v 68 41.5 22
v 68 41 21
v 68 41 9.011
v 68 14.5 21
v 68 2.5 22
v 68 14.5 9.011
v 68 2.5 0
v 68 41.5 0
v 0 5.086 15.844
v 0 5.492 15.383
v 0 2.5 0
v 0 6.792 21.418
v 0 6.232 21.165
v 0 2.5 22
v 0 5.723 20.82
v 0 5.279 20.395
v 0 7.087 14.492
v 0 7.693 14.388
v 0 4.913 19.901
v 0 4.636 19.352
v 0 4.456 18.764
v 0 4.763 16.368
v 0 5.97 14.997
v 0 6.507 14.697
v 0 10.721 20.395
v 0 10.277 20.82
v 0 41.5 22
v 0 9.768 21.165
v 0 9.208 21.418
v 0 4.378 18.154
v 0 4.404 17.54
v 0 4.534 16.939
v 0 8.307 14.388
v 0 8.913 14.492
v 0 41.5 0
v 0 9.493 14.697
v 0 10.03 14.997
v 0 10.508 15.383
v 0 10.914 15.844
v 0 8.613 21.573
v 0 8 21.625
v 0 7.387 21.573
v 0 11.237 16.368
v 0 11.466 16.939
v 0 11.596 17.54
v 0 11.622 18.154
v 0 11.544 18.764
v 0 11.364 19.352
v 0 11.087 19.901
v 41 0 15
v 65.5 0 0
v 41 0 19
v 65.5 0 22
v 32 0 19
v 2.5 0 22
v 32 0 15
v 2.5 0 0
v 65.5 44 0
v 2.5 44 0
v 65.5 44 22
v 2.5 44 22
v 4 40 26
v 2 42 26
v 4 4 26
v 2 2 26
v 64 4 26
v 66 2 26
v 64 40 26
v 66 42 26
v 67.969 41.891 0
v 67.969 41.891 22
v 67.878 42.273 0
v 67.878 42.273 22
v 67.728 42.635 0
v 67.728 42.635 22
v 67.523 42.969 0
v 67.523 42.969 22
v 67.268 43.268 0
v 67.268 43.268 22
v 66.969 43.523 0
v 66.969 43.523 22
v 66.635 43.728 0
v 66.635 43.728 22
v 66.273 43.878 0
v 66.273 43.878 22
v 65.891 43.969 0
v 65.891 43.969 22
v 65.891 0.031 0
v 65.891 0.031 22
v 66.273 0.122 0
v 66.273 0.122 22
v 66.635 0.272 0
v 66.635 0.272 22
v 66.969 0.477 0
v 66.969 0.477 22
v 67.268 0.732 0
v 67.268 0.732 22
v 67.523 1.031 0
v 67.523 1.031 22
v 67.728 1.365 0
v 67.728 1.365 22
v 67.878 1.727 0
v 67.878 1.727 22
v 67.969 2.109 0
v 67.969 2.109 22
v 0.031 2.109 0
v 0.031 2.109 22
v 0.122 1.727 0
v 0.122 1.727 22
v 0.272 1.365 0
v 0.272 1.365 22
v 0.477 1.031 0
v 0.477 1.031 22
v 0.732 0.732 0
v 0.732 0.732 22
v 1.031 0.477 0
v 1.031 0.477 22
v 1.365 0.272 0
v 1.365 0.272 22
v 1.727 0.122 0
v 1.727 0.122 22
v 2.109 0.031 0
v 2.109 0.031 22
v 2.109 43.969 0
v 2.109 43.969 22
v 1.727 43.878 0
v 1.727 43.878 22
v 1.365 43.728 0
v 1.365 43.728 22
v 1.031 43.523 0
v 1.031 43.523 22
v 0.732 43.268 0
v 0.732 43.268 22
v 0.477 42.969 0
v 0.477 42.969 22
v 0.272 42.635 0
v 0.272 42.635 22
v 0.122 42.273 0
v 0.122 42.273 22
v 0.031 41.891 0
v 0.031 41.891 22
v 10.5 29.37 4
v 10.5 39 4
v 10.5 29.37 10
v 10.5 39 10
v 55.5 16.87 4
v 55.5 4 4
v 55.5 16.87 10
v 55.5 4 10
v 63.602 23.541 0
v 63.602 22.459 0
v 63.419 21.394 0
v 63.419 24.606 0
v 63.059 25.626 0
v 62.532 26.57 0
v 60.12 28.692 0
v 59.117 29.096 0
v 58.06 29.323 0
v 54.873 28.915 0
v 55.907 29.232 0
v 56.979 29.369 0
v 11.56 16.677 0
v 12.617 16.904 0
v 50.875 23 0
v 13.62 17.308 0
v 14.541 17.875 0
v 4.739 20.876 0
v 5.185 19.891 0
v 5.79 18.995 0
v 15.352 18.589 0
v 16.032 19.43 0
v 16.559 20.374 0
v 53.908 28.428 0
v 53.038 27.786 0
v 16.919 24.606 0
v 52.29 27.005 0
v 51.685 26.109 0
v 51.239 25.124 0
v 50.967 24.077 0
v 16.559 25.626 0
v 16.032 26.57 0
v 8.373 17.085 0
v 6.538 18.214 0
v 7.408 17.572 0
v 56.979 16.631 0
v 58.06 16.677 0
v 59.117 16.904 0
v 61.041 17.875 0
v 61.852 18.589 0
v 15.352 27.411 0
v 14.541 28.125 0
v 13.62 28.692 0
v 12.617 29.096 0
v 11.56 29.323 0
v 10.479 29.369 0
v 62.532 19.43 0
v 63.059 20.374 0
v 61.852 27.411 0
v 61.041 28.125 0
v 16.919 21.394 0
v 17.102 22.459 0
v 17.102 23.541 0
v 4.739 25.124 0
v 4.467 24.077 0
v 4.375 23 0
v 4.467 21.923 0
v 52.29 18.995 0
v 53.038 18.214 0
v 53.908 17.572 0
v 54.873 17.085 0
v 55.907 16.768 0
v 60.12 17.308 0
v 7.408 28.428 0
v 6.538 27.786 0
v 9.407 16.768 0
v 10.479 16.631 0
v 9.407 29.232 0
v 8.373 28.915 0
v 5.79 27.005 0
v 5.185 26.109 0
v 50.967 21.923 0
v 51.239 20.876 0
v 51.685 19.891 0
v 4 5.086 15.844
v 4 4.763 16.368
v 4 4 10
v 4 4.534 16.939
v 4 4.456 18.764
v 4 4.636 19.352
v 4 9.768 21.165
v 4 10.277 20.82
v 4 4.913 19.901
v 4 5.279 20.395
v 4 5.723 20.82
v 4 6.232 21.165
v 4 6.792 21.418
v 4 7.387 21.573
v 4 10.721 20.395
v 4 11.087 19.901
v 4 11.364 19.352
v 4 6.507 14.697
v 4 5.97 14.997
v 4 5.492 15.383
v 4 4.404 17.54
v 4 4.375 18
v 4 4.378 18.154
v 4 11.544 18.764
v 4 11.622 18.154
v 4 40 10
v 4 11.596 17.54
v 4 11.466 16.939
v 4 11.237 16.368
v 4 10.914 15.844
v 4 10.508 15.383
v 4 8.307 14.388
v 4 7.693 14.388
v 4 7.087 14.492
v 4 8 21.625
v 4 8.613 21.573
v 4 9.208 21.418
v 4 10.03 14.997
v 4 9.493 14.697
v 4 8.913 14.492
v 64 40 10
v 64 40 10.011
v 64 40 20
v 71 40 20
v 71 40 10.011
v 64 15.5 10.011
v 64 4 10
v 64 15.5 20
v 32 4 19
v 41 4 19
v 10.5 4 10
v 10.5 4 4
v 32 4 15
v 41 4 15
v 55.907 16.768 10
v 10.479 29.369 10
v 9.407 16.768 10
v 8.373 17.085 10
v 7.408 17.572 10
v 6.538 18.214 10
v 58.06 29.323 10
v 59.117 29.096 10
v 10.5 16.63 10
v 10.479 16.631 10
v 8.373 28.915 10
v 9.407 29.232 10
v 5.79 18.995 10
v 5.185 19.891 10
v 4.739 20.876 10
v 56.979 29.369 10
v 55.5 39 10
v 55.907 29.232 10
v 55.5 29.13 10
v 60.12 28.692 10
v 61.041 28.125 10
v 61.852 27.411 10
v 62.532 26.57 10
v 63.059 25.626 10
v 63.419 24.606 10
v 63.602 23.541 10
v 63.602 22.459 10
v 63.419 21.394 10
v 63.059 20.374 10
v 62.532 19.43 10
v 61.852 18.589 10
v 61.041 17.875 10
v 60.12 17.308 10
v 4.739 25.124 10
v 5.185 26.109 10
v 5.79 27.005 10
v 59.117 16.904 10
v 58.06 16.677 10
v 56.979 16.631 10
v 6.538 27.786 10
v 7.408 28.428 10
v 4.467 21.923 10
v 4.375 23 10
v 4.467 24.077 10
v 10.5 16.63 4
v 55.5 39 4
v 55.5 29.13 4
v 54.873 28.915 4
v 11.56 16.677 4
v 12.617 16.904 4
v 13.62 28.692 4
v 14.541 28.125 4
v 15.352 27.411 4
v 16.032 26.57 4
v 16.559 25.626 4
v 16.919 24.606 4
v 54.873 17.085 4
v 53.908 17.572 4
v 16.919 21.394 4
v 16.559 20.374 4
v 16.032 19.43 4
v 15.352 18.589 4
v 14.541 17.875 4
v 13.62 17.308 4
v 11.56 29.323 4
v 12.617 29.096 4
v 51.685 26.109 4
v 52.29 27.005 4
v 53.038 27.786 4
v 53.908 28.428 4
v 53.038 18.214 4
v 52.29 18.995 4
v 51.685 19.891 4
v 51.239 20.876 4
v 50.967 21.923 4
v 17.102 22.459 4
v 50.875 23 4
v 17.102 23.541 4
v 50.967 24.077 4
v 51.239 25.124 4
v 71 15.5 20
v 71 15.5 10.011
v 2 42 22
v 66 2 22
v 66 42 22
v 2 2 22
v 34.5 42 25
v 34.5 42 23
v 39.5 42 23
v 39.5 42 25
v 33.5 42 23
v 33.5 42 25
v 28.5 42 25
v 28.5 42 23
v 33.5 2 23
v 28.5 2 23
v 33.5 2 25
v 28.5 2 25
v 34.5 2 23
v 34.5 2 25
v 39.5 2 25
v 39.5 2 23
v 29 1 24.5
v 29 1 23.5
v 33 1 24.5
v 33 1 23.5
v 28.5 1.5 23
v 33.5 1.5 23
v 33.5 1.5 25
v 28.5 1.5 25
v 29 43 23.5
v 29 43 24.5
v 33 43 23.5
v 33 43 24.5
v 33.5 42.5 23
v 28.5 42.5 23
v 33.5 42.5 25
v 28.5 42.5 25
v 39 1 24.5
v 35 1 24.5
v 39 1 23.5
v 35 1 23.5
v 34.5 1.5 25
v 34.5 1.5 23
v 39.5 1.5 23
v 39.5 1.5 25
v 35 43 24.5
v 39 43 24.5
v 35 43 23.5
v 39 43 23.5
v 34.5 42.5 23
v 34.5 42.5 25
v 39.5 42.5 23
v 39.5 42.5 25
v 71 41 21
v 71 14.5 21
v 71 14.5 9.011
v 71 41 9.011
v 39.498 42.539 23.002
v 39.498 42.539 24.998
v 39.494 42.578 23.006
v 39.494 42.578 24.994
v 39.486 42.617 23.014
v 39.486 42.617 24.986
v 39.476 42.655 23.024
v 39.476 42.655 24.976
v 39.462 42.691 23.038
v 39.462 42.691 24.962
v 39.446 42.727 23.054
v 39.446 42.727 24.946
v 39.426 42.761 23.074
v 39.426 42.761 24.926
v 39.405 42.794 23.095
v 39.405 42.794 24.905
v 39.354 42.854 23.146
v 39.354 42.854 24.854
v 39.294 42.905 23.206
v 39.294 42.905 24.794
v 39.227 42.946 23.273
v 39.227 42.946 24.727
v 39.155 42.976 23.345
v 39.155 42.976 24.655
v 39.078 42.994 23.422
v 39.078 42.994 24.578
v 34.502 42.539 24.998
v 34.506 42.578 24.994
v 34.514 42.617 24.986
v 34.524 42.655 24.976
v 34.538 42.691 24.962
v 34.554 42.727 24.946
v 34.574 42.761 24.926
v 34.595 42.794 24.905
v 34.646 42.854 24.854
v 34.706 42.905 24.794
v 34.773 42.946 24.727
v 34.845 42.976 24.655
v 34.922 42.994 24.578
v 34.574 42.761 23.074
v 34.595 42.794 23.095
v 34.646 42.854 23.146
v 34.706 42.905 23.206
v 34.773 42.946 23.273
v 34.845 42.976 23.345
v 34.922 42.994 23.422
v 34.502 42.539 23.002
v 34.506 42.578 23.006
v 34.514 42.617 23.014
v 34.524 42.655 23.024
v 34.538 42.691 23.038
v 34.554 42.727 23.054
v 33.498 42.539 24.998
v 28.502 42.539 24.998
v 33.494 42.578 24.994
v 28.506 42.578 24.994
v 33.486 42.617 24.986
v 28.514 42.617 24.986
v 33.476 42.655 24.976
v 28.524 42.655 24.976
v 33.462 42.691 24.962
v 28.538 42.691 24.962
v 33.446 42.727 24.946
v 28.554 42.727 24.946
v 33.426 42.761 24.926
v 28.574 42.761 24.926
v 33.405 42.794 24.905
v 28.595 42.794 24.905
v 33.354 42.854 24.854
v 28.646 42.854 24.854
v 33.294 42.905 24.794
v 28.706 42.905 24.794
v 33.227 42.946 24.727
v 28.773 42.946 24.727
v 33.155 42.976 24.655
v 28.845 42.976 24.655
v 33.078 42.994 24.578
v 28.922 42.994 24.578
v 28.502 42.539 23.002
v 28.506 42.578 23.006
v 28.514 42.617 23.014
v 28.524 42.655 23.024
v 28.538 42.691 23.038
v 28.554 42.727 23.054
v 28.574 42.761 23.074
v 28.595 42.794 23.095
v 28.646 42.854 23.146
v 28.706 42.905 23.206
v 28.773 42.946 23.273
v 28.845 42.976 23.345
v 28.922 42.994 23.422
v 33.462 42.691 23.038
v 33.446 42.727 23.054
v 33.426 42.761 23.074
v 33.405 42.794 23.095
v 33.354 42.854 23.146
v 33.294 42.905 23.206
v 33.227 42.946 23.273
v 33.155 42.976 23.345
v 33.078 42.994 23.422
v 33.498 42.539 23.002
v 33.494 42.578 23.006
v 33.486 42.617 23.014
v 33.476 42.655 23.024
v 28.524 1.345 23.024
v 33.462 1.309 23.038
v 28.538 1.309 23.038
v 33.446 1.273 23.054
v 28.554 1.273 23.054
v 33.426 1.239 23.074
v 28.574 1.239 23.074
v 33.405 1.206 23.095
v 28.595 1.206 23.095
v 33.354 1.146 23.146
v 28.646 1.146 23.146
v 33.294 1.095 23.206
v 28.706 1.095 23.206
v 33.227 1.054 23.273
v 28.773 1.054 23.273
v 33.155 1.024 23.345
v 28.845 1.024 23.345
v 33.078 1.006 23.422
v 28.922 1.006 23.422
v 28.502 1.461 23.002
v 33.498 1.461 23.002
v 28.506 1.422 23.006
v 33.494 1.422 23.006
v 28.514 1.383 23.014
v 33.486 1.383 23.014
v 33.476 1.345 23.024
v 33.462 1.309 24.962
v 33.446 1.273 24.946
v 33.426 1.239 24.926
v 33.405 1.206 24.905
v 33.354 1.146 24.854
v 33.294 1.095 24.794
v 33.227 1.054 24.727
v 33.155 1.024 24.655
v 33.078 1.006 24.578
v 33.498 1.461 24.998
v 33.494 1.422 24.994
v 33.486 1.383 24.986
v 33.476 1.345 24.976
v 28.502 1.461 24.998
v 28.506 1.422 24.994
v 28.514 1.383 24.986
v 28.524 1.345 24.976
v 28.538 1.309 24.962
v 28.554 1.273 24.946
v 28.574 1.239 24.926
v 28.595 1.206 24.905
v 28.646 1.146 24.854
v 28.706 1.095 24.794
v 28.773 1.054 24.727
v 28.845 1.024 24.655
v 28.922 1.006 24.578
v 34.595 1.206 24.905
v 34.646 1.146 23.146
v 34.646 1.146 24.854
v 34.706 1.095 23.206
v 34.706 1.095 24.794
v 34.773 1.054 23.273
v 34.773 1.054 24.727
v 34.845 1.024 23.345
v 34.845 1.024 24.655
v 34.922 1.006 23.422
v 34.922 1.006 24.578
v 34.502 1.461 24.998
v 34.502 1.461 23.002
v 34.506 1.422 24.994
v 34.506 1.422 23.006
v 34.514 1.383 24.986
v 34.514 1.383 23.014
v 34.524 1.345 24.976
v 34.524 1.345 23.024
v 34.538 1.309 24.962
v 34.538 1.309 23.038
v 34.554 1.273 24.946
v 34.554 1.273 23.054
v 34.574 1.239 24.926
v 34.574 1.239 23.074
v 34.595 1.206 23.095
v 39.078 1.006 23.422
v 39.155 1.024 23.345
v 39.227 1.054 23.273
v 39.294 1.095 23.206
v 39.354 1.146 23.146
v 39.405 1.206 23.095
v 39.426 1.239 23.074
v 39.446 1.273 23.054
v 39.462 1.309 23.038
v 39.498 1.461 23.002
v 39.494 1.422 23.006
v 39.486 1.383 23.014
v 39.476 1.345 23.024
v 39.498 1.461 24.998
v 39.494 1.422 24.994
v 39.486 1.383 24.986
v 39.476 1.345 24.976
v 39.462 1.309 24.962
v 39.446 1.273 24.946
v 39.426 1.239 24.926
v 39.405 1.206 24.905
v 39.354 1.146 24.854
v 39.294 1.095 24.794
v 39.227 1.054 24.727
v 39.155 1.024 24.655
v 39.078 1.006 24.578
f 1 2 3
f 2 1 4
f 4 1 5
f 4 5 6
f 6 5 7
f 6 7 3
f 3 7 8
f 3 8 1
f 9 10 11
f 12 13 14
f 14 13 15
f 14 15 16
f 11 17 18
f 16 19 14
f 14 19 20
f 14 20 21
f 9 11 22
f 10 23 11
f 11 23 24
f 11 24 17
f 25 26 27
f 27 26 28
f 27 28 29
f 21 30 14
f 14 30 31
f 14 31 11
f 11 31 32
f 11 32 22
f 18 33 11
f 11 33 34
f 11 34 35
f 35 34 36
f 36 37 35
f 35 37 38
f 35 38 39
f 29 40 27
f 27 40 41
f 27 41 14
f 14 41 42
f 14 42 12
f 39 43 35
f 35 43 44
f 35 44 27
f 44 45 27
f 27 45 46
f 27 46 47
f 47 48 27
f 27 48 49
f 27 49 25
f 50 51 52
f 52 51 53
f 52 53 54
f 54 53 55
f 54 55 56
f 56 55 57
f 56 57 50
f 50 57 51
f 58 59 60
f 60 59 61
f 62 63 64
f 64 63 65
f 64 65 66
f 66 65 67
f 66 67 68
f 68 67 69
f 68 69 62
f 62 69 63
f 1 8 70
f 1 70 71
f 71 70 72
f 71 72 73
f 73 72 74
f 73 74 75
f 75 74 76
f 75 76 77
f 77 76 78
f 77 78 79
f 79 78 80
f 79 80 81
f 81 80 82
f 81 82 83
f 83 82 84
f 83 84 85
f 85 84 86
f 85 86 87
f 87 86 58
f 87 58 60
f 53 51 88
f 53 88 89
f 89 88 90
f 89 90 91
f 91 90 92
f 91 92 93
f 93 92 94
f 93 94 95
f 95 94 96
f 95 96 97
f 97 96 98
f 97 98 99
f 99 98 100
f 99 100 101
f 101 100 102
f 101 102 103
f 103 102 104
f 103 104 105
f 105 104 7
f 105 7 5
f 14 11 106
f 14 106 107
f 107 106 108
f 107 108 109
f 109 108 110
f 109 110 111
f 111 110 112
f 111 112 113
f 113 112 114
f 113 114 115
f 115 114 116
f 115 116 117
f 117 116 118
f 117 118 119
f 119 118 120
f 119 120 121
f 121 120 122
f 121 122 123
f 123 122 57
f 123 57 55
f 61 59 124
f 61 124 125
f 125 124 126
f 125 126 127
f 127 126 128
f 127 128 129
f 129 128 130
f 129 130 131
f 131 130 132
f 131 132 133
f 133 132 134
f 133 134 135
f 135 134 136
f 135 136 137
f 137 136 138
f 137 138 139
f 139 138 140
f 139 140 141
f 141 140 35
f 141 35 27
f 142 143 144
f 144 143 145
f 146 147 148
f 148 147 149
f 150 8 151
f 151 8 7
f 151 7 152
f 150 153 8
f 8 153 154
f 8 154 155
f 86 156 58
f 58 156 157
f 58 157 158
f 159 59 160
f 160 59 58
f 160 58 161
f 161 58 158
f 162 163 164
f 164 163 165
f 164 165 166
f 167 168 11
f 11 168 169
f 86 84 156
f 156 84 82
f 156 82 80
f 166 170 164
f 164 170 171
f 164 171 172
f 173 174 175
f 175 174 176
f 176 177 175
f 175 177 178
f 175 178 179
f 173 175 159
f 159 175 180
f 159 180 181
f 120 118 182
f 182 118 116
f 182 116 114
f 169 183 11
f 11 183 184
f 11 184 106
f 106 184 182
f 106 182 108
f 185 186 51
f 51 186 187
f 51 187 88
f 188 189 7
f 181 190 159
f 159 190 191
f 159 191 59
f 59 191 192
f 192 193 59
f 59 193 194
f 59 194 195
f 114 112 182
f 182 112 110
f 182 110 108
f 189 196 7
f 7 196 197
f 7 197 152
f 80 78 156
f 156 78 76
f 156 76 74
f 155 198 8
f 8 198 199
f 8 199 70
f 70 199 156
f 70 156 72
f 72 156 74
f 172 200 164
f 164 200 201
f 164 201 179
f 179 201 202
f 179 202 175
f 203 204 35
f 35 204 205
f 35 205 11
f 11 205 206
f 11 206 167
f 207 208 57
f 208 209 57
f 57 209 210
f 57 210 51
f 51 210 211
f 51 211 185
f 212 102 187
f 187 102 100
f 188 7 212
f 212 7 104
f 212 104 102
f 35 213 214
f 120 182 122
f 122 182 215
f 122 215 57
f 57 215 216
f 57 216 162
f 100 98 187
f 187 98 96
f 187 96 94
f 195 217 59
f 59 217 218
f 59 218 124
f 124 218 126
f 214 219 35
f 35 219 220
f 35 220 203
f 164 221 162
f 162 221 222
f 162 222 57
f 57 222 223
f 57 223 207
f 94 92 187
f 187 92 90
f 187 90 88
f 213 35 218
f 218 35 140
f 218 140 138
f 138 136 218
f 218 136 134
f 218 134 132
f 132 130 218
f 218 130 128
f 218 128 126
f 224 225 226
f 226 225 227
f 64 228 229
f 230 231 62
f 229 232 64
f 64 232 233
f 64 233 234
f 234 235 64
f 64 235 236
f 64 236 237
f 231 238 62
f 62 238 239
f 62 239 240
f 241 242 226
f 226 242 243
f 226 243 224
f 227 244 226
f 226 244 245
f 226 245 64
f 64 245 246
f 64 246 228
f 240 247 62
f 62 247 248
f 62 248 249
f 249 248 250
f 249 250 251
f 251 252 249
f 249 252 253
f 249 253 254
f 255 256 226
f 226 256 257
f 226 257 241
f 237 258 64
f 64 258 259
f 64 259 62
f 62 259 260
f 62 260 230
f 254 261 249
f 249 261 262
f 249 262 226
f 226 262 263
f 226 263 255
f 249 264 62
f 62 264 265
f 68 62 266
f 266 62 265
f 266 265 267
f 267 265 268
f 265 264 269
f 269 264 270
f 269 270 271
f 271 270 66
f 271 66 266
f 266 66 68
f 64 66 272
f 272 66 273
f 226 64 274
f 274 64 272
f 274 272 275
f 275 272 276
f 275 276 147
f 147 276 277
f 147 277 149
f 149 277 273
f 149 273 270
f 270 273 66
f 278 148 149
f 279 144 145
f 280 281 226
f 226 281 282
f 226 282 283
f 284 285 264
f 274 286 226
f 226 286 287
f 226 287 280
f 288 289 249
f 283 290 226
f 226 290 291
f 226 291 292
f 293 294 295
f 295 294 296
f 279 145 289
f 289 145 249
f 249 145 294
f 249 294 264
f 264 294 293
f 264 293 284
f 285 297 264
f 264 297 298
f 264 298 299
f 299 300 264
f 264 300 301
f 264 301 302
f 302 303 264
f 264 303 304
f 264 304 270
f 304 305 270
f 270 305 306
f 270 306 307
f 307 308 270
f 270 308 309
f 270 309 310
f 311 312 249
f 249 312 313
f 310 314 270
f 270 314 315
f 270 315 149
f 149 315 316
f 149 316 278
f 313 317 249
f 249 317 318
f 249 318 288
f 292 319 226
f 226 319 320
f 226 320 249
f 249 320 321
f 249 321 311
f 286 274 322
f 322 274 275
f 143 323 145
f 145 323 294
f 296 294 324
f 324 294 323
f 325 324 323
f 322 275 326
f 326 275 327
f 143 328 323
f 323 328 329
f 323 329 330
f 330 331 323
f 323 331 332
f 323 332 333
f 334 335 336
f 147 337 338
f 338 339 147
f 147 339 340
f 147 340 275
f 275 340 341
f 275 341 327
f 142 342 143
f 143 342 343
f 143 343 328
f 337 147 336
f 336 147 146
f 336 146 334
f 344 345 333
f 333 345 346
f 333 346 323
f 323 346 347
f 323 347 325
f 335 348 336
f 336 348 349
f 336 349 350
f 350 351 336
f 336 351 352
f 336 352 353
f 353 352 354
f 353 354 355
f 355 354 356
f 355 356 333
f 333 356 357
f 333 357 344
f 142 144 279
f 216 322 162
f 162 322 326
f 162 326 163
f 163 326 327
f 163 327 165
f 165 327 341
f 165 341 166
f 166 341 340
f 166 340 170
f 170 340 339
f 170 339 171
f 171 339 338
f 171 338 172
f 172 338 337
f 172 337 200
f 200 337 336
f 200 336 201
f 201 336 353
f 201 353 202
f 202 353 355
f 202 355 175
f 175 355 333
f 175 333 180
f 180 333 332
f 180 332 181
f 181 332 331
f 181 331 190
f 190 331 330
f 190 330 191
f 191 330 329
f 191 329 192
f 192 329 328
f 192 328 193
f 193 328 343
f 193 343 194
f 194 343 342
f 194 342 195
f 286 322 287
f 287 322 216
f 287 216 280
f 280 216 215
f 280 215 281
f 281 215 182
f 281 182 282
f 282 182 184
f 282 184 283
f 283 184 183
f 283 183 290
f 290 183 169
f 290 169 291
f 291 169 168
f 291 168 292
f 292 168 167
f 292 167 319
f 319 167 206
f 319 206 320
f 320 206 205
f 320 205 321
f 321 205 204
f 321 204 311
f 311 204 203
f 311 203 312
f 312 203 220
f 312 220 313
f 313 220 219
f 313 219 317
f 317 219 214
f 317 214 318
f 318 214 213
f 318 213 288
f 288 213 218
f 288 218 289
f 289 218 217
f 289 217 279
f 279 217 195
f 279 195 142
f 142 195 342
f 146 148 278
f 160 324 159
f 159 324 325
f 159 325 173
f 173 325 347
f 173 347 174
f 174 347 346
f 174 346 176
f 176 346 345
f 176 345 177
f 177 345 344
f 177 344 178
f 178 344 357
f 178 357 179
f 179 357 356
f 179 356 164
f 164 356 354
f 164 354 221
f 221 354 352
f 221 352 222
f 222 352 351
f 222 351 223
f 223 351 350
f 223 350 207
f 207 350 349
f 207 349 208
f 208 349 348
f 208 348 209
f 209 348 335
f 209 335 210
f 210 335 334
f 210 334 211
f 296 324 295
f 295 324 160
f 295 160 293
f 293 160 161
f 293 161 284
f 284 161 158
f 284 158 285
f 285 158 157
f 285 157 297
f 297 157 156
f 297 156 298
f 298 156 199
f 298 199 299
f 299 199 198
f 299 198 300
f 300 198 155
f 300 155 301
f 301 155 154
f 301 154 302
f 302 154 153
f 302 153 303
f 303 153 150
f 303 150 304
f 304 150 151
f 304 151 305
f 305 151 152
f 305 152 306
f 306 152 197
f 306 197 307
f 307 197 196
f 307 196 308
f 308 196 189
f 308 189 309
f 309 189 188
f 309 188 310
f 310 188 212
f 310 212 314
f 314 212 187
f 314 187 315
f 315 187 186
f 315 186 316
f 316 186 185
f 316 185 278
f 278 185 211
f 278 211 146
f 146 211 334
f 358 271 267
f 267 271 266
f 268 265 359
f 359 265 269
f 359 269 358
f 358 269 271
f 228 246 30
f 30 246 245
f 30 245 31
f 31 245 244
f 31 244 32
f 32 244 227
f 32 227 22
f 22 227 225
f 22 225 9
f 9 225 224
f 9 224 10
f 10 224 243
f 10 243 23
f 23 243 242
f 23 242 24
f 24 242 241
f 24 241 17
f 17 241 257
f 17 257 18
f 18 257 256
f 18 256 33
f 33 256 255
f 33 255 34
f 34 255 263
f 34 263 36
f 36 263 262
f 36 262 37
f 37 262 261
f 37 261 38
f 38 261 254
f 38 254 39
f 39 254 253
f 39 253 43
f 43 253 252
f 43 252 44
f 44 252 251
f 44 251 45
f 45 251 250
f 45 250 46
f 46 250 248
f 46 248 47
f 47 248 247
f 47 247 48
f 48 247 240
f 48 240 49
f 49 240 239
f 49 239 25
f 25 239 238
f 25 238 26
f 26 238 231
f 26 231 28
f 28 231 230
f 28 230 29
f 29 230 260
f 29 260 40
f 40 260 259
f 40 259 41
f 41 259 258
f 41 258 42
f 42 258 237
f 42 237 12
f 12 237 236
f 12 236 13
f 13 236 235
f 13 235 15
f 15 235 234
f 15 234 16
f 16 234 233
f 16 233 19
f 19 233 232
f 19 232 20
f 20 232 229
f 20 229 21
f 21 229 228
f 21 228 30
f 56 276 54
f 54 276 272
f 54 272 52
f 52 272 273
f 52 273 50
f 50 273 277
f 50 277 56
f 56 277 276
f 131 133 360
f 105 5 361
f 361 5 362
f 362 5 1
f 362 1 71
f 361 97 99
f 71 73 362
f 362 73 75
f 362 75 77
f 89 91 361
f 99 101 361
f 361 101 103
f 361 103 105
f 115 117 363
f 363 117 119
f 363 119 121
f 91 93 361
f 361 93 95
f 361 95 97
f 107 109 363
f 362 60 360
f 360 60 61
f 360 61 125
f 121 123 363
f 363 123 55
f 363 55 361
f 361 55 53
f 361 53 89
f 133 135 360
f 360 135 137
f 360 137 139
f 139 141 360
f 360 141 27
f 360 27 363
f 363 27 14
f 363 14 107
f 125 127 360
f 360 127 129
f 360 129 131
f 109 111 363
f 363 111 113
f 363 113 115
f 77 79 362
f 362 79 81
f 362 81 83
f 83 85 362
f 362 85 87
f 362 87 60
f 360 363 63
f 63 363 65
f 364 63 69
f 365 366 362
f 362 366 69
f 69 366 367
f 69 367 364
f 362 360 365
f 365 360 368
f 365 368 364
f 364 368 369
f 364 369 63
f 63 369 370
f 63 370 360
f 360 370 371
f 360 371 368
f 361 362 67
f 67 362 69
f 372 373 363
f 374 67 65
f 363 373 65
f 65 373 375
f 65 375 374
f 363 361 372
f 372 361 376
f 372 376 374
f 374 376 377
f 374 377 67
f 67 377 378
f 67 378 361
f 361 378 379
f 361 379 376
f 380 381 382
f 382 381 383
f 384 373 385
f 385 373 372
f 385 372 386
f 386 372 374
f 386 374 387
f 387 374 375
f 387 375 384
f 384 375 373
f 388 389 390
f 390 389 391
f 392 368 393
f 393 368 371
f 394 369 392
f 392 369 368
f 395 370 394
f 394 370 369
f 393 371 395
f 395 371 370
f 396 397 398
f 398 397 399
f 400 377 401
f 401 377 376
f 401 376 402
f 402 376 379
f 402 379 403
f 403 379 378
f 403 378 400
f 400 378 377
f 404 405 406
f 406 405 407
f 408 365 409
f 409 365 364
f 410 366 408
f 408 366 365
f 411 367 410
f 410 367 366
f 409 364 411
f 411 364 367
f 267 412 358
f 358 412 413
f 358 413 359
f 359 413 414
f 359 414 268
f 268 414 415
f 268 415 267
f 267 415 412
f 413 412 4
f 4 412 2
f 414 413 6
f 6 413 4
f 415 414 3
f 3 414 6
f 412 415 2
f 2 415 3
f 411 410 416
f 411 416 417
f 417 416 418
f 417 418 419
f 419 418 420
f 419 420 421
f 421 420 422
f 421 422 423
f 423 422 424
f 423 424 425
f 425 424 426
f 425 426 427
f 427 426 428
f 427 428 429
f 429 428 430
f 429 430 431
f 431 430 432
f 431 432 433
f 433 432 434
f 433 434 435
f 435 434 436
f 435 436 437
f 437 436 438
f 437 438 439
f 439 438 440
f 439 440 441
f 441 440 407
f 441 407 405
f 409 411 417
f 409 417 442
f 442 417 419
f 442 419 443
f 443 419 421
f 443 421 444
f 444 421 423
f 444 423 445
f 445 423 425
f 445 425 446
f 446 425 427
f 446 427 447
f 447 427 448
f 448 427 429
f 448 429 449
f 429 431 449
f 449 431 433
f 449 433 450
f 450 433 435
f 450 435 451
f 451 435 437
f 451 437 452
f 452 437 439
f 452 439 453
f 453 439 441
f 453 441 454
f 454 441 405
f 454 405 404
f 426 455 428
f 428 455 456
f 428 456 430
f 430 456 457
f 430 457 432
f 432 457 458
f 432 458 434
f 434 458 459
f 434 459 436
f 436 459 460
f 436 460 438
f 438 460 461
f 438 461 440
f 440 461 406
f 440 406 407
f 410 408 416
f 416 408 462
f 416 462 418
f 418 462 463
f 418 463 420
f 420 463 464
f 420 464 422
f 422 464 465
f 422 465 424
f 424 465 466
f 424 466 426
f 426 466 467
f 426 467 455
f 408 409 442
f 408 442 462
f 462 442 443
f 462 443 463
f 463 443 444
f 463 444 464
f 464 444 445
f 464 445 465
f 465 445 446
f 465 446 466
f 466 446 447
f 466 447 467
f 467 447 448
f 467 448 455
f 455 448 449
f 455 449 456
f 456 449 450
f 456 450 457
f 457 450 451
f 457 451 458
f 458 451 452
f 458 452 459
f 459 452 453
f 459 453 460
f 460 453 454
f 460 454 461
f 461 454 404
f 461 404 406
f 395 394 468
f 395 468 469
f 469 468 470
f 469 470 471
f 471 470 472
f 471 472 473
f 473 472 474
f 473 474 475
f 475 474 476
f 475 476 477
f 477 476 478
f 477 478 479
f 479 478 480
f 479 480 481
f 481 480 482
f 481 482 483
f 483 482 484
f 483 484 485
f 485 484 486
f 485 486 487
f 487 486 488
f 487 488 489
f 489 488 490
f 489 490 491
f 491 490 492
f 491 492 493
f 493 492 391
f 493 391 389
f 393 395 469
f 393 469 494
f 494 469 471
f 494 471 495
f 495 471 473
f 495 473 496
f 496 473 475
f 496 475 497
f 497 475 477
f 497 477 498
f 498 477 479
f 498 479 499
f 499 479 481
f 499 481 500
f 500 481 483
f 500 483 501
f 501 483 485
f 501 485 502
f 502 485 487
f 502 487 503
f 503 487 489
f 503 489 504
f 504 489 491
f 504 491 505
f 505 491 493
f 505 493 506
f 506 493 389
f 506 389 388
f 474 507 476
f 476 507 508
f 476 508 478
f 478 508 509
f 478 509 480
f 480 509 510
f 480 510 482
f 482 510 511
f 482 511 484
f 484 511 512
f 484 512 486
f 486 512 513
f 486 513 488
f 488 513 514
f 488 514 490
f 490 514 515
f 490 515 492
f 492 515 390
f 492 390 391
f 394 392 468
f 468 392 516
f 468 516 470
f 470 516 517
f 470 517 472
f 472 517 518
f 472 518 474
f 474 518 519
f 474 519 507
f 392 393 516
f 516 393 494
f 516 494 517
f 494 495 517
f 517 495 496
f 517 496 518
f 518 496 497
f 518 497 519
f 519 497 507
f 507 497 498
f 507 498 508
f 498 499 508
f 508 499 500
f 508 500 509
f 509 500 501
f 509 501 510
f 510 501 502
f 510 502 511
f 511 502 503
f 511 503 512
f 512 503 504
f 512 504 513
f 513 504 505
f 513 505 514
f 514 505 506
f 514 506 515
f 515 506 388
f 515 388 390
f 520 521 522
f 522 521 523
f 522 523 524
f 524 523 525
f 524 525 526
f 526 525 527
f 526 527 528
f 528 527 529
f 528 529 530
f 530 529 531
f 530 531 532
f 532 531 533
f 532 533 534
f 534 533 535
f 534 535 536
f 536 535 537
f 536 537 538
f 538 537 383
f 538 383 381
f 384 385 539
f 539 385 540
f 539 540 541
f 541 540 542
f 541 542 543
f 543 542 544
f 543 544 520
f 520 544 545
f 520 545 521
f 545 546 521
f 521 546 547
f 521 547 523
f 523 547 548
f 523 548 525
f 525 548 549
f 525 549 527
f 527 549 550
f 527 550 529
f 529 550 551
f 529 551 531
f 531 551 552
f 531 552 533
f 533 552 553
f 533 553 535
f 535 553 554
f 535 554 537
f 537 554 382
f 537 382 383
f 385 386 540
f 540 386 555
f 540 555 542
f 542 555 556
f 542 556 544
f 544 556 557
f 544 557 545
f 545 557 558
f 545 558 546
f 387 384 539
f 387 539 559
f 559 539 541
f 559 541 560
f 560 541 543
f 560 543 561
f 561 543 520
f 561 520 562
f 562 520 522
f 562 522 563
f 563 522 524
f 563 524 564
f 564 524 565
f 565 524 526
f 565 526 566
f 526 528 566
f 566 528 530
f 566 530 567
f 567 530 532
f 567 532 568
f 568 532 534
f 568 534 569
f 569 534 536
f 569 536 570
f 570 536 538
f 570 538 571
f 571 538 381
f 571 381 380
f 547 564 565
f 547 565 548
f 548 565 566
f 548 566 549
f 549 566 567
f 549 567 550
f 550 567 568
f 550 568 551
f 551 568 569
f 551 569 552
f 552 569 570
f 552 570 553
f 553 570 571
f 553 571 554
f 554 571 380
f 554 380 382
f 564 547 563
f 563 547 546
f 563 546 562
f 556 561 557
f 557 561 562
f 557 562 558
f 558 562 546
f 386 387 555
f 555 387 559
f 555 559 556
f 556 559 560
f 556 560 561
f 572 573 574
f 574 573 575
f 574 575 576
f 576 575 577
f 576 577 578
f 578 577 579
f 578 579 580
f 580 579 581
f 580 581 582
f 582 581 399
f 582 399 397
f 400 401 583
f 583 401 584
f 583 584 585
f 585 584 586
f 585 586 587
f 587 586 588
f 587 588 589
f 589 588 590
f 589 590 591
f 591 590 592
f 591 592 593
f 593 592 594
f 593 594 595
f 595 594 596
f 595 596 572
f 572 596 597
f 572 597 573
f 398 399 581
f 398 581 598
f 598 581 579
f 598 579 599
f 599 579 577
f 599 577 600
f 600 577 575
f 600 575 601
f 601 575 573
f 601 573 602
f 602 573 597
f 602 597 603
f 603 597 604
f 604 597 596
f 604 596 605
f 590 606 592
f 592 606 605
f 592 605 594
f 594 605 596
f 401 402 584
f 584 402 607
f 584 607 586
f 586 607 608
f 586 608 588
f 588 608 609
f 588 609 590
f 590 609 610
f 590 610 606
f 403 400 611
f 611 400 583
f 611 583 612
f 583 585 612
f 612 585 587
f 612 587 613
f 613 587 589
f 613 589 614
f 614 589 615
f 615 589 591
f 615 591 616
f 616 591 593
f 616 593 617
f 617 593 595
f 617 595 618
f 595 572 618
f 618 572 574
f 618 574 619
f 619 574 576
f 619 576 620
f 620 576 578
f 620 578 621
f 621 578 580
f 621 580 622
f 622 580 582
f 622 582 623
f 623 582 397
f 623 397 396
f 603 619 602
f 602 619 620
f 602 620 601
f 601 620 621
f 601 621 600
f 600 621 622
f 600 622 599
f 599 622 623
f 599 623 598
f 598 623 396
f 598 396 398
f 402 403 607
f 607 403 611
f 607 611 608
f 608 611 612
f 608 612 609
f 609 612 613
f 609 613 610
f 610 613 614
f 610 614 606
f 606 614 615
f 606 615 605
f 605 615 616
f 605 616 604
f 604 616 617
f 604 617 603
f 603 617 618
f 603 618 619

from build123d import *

# Parameters (mm, degrees)
SKETCH1_W                   = 68
SKETCH1_H                   = 44
MIAN_BOSS_EXTRUDE_DEPTH     = 26
SKETCH2_W                   = 60
SKETCH2_H                   = 36
MAIN_CUT_DEPTH              = 16
SKETCH4_W                   = 45
SKETCH4_H                   = 35
BATTERY_CUT_DEPTH           = 6
SKETCH5_R                   = 6.375
ELCTRODE_CUT_DEPTH          = 12
SKETCH6_W                   = 9.989337028
SKETCH6_H                   = 24.5
USB_C_CUT_DEPTH             = 7
SKETCH7_R                   = 3.625
BUTTON_CUT_DEPTH            = 7
SKETCH8_W                   = 9
SKETCH8_H                   = 4
SWITCH_CUT_DEPTH            = 7
OUTSIDE_FILLET_R            = 2.5
SKETCH10_OUTSIDE_W          = 87.012
SKETCH10_OUTSIDE_H          = 63.012
SKETCH10_OUTSIDE_W_2        = 64
SKETCH10_OUTSIDE_H_2        = 40
OUTER_LID_EXTRUDE_DEPTH     = 4
LID_SNAP_EXTRUDE_DEPTH      = 1
LID_SNAP_EXTRUDE_DEPTH_BACK = 41
SKETCH11_W                  = 5
SKETCH11_H                  = 2
SKETCH13_W                  = 11
SKETCH13_H                  = 36
INNER_LID_EXTRUDE_DEPTH     = 3
SKETCH14_W                  = 11.989337028
SKETCH14_H                  = 26.5
SKETCH14_W_2                = 9.989337028
SKETCH14_H_2                = 24.5
USB_COVER_EXTRUDE_DEPTH     = 3
LID_SNAP_FILLET_R           = 0.5


with BuildPart() as part:
    # Sketch1 → Mian Boss Extrude (new body)
    with BuildSketch(Plane.XY):
        with Locations((34, 22)):
            Rectangle(SKETCH1_W, SKETCH1_H)
    extrude(amount=MIAN_BOSS_EXTRUDE_DEPTH)

    # Sketch2 → Main cut (cut)
    with BuildSketch(Plane.XY.offset(26)):
        with Locations((34, 22)):
            Rectangle(SKETCH2_W, SKETCH2_H)
    extrude(amount=-MAIN_CUT_DEPTH, mode=Mode.SUBTRACT)

    # Sketch4 → Battery Cut (cut)
    with BuildSketch(Plane.XY.offset(10)):
        with Locations((33, 21.5)):
            Rectangle(SKETCH4_W, SKETCH4_H)
    extrude(amount=-BATTERY_CUT_DEPTH, mode=Mode.SUBTRACT)

    # Sketch5 → Elctrode Cut (cut)
    with BuildSketch(Plane(origin=(0, 0, 0), x_dir=(-1, 0, 0), z_dir=(0, 0, -1))):
        with Locations((-57.25, 23)):
            Circle(SKETCH5_R)
        with Locations((-10.75, 23)):
            Circle(SKETCH5_R)
    extrude(amount=-ELCTRODE_CUT_DEPTH, mode=Mode.SUBTRACT)

    # Sketch6 → USB-c Cut (cut)
    with BuildSketch(Plane(origin=(68, 0, 0), x_dir=(0, 0, -1), z_dir=(1, 0, 0))):
        with Locations((-15.005331486, 27.75)):
            Rectangle(SKETCH6_W, SKETCH6_H)
    extrude(amount=-USB_C_CUT_DEPTH, mode=Mode.SUBTRACT)

    # Sketch7 → Button Cut (cut)
    with BuildSketch(Plane.ZY):
        with Locations((18, 8)):
            Circle(SKETCH7_R)
    extrude(amount=-BUTTON_CUT_DEPTH, mode=Mode.SUBTRACT)

    # Sketch8 → Switch Cut (cut)
    with BuildSketch(Plane.XZ):
        with Locations((36.5, 17)):
            Rectangle(SKETCH8_W, SKETCH8_H)
    extrude(amount=-SWITCH_CUT_DEPTH, mode=Mode.SUBTRACT)

    # Outside Fillet
    outside_fillet_edges = [part.edges().sort_by_distance(p)[0] for p in [
        (0, 44, 13),
        (68, 44, 13),
        (68, 0, 13),
        (0, 0, 13),
    ]]
    fillet(outside_fillet_edges, radius=OUTSIDE_FILLET_R)

    # Sketch10 outside → Outer lid Extrude (cut)
    with BuildSketch(Plane.XY.offset(26)):
        with Locations((34, 22)):
            Rectangle(SKETCH10_OUTSIDE_W, SKETCH10_OUTSIDE_H)
        with Locations((34, 22)):
            Rectangle(SKETCH10_OUTSIDE_W_2, SKETCH10_OUTSIDE_H_2, mode=Mode.SUBTRACT)
    extrude(amount=-OUTER_LID_EXTRUDE_DEPTH, mode=Mode.SUBTRACT)

    # Sketch11 → Lid Snap-Extrude (add, two sides: drawn at the far end of the back side and taken through both)
    with BuildSketch(Plane.XZ.offset(-2).offset(-LID_SNAP_EXTRUDE_DEPTH_BACK)):
        with Locations((31, 24)):
            Rectangle(SKETCH11_W, SKETCH11_H)
        with Locations((37, 24)):
            Rectangle(SKETCH11_W, SKETCH11_H)
    extrude(amount=LID_SNAP_EXTRUDE_DEPTH + LID_SNAP_EXTRUDE_DEPTH_BACK)

    # Sketch13 → Inner Lid-Extrude (cut)
    with BuildSketch(Plane.XY.offset(25)):
        with Locations((34, 22)):
            Rectangle(SKETCH13_W, SKETCH13_H)
    extrude(amount=-INNER_LID_EXTRUDE_DEPTH, mode=Mode.SUBTRACT)

    # Sketch14 → USB Cover-Extrude (add)
    with BuildSketch(Plane(origin=(68, 0, 0), x_dir=(0, 0, -1), z_dir=(1, 0, 0))):
        with Locations((-15.005331486, 27.75)):
            Rectangle(SKETCH14_W, SKETCH14_H)
        with Locations((-15.005331486, 27.75)):
            Rectangle(SKETCH14_W_2, SKETCH14_H_2, mode=Mode.SUBTRACT)
    extrude(amount=USB_COVER_EXTRUDE_DEPTH)

    # Lid Snap Fillet
    lid_snap_fillet_edges = [part.edges().sort_by_distance(p)[0] for p in [
        (28.5, 43, 24),
        (31, 43, 25),
        (33.5, 43, 24),
        (31, 43, 23),
        (28.5, 1, 24),
        (31, 1, 23),
        (33.5, 1, 24),
        (31, 1, 25),
        (37, 43, 25),
        (39.5, 43, 24),
        (37, 43, 23),
        (34.5, 43, 24),
        (37, 1, 25),
        (34.5, 1, 24),
        (37, 1, 23),
        (39.5, 1, 24),
    ]]
    fillet(lid_snap_fillet_edges, radius=LID_SNAP_FILLET_R)


solid = part.part
